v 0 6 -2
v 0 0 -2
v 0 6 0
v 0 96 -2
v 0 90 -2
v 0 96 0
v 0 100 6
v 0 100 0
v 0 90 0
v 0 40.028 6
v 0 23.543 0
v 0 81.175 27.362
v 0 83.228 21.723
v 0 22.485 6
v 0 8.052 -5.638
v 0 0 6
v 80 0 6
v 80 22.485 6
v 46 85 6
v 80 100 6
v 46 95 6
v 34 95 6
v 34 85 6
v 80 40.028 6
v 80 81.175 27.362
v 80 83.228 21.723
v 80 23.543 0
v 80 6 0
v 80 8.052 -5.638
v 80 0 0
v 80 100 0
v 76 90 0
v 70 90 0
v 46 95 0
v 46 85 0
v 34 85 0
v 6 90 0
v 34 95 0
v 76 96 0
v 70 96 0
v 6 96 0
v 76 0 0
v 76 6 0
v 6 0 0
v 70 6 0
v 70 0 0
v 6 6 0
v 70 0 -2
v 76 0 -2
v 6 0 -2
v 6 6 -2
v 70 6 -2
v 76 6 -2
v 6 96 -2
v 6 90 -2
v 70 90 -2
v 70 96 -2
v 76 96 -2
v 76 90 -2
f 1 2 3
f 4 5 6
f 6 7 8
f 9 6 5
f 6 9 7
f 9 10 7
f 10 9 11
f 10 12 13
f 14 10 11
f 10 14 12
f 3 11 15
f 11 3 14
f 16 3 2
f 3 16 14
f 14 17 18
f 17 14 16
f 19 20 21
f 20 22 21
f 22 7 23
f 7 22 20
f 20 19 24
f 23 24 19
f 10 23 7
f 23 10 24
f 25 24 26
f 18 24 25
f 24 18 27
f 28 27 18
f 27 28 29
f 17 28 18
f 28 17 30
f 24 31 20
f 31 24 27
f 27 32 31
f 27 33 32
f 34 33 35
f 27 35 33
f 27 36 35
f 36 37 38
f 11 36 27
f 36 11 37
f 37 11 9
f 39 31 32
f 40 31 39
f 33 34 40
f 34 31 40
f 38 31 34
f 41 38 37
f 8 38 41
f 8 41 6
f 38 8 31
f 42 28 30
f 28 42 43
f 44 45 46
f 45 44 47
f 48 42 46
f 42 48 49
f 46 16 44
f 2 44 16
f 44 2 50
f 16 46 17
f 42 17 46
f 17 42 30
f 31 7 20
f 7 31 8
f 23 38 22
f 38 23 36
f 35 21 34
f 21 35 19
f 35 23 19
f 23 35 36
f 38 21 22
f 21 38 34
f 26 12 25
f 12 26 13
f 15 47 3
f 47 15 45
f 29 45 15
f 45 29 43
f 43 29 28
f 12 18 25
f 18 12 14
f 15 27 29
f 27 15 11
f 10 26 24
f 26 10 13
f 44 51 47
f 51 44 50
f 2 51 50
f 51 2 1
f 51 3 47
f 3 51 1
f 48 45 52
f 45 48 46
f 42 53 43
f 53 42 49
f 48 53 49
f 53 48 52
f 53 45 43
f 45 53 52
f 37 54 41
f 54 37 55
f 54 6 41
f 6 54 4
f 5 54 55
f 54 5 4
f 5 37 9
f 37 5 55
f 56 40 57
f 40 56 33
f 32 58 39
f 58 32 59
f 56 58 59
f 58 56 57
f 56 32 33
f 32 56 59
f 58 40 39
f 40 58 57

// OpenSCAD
// 参数区
base_w = 80;
base_d = 100;
base_h = 6;

back_h = 80;
back_t = 6;
back_angle = 70;

front_h = 6;   // 前挡板高度
front_t = 4;   // 前挡板厚度

slot_w = 12;
slot_d = 10;


$fn = 64;

// 底座
module base_plate() {
    difference() {
        cube([base_w, base_d, base_h]);

        // 手机卡槽（可忽略，也可用作装饰）
        translate([base_w/2 - slot_w/2, base_d - slot_d - 5, -1])
            cube([slot_w, slot_d, base_h + 2]);
    }
}

// 支撑背板
module back_support() {
    rotate([-back_angle, 0, 0])
        cube([base_w, back_t, back_h]);
}

// 前挡板
module front_stop() {
    translate([0, 0, 0])
        cube([base_w, front_t, front_h]);
}

// 底座支撑脚
module foot(pos_x, pos_y) {
    translate([pos_x, pos_y, -2])
        cube([6, 6, 2]);
}

// 主体组合
module phone_stand() {
    union() {
        base_plate();
        front_stop();

        translate([0, base_h, 0])
            back_support();

        // 底座四角脚
        foot(0, 0);
        foot(base_w - 10, 0);
        foot(0, base_d - 10);
        foot(base_w - 10, base_d - 10);
    }
}

// 渲染
phone_stand();
